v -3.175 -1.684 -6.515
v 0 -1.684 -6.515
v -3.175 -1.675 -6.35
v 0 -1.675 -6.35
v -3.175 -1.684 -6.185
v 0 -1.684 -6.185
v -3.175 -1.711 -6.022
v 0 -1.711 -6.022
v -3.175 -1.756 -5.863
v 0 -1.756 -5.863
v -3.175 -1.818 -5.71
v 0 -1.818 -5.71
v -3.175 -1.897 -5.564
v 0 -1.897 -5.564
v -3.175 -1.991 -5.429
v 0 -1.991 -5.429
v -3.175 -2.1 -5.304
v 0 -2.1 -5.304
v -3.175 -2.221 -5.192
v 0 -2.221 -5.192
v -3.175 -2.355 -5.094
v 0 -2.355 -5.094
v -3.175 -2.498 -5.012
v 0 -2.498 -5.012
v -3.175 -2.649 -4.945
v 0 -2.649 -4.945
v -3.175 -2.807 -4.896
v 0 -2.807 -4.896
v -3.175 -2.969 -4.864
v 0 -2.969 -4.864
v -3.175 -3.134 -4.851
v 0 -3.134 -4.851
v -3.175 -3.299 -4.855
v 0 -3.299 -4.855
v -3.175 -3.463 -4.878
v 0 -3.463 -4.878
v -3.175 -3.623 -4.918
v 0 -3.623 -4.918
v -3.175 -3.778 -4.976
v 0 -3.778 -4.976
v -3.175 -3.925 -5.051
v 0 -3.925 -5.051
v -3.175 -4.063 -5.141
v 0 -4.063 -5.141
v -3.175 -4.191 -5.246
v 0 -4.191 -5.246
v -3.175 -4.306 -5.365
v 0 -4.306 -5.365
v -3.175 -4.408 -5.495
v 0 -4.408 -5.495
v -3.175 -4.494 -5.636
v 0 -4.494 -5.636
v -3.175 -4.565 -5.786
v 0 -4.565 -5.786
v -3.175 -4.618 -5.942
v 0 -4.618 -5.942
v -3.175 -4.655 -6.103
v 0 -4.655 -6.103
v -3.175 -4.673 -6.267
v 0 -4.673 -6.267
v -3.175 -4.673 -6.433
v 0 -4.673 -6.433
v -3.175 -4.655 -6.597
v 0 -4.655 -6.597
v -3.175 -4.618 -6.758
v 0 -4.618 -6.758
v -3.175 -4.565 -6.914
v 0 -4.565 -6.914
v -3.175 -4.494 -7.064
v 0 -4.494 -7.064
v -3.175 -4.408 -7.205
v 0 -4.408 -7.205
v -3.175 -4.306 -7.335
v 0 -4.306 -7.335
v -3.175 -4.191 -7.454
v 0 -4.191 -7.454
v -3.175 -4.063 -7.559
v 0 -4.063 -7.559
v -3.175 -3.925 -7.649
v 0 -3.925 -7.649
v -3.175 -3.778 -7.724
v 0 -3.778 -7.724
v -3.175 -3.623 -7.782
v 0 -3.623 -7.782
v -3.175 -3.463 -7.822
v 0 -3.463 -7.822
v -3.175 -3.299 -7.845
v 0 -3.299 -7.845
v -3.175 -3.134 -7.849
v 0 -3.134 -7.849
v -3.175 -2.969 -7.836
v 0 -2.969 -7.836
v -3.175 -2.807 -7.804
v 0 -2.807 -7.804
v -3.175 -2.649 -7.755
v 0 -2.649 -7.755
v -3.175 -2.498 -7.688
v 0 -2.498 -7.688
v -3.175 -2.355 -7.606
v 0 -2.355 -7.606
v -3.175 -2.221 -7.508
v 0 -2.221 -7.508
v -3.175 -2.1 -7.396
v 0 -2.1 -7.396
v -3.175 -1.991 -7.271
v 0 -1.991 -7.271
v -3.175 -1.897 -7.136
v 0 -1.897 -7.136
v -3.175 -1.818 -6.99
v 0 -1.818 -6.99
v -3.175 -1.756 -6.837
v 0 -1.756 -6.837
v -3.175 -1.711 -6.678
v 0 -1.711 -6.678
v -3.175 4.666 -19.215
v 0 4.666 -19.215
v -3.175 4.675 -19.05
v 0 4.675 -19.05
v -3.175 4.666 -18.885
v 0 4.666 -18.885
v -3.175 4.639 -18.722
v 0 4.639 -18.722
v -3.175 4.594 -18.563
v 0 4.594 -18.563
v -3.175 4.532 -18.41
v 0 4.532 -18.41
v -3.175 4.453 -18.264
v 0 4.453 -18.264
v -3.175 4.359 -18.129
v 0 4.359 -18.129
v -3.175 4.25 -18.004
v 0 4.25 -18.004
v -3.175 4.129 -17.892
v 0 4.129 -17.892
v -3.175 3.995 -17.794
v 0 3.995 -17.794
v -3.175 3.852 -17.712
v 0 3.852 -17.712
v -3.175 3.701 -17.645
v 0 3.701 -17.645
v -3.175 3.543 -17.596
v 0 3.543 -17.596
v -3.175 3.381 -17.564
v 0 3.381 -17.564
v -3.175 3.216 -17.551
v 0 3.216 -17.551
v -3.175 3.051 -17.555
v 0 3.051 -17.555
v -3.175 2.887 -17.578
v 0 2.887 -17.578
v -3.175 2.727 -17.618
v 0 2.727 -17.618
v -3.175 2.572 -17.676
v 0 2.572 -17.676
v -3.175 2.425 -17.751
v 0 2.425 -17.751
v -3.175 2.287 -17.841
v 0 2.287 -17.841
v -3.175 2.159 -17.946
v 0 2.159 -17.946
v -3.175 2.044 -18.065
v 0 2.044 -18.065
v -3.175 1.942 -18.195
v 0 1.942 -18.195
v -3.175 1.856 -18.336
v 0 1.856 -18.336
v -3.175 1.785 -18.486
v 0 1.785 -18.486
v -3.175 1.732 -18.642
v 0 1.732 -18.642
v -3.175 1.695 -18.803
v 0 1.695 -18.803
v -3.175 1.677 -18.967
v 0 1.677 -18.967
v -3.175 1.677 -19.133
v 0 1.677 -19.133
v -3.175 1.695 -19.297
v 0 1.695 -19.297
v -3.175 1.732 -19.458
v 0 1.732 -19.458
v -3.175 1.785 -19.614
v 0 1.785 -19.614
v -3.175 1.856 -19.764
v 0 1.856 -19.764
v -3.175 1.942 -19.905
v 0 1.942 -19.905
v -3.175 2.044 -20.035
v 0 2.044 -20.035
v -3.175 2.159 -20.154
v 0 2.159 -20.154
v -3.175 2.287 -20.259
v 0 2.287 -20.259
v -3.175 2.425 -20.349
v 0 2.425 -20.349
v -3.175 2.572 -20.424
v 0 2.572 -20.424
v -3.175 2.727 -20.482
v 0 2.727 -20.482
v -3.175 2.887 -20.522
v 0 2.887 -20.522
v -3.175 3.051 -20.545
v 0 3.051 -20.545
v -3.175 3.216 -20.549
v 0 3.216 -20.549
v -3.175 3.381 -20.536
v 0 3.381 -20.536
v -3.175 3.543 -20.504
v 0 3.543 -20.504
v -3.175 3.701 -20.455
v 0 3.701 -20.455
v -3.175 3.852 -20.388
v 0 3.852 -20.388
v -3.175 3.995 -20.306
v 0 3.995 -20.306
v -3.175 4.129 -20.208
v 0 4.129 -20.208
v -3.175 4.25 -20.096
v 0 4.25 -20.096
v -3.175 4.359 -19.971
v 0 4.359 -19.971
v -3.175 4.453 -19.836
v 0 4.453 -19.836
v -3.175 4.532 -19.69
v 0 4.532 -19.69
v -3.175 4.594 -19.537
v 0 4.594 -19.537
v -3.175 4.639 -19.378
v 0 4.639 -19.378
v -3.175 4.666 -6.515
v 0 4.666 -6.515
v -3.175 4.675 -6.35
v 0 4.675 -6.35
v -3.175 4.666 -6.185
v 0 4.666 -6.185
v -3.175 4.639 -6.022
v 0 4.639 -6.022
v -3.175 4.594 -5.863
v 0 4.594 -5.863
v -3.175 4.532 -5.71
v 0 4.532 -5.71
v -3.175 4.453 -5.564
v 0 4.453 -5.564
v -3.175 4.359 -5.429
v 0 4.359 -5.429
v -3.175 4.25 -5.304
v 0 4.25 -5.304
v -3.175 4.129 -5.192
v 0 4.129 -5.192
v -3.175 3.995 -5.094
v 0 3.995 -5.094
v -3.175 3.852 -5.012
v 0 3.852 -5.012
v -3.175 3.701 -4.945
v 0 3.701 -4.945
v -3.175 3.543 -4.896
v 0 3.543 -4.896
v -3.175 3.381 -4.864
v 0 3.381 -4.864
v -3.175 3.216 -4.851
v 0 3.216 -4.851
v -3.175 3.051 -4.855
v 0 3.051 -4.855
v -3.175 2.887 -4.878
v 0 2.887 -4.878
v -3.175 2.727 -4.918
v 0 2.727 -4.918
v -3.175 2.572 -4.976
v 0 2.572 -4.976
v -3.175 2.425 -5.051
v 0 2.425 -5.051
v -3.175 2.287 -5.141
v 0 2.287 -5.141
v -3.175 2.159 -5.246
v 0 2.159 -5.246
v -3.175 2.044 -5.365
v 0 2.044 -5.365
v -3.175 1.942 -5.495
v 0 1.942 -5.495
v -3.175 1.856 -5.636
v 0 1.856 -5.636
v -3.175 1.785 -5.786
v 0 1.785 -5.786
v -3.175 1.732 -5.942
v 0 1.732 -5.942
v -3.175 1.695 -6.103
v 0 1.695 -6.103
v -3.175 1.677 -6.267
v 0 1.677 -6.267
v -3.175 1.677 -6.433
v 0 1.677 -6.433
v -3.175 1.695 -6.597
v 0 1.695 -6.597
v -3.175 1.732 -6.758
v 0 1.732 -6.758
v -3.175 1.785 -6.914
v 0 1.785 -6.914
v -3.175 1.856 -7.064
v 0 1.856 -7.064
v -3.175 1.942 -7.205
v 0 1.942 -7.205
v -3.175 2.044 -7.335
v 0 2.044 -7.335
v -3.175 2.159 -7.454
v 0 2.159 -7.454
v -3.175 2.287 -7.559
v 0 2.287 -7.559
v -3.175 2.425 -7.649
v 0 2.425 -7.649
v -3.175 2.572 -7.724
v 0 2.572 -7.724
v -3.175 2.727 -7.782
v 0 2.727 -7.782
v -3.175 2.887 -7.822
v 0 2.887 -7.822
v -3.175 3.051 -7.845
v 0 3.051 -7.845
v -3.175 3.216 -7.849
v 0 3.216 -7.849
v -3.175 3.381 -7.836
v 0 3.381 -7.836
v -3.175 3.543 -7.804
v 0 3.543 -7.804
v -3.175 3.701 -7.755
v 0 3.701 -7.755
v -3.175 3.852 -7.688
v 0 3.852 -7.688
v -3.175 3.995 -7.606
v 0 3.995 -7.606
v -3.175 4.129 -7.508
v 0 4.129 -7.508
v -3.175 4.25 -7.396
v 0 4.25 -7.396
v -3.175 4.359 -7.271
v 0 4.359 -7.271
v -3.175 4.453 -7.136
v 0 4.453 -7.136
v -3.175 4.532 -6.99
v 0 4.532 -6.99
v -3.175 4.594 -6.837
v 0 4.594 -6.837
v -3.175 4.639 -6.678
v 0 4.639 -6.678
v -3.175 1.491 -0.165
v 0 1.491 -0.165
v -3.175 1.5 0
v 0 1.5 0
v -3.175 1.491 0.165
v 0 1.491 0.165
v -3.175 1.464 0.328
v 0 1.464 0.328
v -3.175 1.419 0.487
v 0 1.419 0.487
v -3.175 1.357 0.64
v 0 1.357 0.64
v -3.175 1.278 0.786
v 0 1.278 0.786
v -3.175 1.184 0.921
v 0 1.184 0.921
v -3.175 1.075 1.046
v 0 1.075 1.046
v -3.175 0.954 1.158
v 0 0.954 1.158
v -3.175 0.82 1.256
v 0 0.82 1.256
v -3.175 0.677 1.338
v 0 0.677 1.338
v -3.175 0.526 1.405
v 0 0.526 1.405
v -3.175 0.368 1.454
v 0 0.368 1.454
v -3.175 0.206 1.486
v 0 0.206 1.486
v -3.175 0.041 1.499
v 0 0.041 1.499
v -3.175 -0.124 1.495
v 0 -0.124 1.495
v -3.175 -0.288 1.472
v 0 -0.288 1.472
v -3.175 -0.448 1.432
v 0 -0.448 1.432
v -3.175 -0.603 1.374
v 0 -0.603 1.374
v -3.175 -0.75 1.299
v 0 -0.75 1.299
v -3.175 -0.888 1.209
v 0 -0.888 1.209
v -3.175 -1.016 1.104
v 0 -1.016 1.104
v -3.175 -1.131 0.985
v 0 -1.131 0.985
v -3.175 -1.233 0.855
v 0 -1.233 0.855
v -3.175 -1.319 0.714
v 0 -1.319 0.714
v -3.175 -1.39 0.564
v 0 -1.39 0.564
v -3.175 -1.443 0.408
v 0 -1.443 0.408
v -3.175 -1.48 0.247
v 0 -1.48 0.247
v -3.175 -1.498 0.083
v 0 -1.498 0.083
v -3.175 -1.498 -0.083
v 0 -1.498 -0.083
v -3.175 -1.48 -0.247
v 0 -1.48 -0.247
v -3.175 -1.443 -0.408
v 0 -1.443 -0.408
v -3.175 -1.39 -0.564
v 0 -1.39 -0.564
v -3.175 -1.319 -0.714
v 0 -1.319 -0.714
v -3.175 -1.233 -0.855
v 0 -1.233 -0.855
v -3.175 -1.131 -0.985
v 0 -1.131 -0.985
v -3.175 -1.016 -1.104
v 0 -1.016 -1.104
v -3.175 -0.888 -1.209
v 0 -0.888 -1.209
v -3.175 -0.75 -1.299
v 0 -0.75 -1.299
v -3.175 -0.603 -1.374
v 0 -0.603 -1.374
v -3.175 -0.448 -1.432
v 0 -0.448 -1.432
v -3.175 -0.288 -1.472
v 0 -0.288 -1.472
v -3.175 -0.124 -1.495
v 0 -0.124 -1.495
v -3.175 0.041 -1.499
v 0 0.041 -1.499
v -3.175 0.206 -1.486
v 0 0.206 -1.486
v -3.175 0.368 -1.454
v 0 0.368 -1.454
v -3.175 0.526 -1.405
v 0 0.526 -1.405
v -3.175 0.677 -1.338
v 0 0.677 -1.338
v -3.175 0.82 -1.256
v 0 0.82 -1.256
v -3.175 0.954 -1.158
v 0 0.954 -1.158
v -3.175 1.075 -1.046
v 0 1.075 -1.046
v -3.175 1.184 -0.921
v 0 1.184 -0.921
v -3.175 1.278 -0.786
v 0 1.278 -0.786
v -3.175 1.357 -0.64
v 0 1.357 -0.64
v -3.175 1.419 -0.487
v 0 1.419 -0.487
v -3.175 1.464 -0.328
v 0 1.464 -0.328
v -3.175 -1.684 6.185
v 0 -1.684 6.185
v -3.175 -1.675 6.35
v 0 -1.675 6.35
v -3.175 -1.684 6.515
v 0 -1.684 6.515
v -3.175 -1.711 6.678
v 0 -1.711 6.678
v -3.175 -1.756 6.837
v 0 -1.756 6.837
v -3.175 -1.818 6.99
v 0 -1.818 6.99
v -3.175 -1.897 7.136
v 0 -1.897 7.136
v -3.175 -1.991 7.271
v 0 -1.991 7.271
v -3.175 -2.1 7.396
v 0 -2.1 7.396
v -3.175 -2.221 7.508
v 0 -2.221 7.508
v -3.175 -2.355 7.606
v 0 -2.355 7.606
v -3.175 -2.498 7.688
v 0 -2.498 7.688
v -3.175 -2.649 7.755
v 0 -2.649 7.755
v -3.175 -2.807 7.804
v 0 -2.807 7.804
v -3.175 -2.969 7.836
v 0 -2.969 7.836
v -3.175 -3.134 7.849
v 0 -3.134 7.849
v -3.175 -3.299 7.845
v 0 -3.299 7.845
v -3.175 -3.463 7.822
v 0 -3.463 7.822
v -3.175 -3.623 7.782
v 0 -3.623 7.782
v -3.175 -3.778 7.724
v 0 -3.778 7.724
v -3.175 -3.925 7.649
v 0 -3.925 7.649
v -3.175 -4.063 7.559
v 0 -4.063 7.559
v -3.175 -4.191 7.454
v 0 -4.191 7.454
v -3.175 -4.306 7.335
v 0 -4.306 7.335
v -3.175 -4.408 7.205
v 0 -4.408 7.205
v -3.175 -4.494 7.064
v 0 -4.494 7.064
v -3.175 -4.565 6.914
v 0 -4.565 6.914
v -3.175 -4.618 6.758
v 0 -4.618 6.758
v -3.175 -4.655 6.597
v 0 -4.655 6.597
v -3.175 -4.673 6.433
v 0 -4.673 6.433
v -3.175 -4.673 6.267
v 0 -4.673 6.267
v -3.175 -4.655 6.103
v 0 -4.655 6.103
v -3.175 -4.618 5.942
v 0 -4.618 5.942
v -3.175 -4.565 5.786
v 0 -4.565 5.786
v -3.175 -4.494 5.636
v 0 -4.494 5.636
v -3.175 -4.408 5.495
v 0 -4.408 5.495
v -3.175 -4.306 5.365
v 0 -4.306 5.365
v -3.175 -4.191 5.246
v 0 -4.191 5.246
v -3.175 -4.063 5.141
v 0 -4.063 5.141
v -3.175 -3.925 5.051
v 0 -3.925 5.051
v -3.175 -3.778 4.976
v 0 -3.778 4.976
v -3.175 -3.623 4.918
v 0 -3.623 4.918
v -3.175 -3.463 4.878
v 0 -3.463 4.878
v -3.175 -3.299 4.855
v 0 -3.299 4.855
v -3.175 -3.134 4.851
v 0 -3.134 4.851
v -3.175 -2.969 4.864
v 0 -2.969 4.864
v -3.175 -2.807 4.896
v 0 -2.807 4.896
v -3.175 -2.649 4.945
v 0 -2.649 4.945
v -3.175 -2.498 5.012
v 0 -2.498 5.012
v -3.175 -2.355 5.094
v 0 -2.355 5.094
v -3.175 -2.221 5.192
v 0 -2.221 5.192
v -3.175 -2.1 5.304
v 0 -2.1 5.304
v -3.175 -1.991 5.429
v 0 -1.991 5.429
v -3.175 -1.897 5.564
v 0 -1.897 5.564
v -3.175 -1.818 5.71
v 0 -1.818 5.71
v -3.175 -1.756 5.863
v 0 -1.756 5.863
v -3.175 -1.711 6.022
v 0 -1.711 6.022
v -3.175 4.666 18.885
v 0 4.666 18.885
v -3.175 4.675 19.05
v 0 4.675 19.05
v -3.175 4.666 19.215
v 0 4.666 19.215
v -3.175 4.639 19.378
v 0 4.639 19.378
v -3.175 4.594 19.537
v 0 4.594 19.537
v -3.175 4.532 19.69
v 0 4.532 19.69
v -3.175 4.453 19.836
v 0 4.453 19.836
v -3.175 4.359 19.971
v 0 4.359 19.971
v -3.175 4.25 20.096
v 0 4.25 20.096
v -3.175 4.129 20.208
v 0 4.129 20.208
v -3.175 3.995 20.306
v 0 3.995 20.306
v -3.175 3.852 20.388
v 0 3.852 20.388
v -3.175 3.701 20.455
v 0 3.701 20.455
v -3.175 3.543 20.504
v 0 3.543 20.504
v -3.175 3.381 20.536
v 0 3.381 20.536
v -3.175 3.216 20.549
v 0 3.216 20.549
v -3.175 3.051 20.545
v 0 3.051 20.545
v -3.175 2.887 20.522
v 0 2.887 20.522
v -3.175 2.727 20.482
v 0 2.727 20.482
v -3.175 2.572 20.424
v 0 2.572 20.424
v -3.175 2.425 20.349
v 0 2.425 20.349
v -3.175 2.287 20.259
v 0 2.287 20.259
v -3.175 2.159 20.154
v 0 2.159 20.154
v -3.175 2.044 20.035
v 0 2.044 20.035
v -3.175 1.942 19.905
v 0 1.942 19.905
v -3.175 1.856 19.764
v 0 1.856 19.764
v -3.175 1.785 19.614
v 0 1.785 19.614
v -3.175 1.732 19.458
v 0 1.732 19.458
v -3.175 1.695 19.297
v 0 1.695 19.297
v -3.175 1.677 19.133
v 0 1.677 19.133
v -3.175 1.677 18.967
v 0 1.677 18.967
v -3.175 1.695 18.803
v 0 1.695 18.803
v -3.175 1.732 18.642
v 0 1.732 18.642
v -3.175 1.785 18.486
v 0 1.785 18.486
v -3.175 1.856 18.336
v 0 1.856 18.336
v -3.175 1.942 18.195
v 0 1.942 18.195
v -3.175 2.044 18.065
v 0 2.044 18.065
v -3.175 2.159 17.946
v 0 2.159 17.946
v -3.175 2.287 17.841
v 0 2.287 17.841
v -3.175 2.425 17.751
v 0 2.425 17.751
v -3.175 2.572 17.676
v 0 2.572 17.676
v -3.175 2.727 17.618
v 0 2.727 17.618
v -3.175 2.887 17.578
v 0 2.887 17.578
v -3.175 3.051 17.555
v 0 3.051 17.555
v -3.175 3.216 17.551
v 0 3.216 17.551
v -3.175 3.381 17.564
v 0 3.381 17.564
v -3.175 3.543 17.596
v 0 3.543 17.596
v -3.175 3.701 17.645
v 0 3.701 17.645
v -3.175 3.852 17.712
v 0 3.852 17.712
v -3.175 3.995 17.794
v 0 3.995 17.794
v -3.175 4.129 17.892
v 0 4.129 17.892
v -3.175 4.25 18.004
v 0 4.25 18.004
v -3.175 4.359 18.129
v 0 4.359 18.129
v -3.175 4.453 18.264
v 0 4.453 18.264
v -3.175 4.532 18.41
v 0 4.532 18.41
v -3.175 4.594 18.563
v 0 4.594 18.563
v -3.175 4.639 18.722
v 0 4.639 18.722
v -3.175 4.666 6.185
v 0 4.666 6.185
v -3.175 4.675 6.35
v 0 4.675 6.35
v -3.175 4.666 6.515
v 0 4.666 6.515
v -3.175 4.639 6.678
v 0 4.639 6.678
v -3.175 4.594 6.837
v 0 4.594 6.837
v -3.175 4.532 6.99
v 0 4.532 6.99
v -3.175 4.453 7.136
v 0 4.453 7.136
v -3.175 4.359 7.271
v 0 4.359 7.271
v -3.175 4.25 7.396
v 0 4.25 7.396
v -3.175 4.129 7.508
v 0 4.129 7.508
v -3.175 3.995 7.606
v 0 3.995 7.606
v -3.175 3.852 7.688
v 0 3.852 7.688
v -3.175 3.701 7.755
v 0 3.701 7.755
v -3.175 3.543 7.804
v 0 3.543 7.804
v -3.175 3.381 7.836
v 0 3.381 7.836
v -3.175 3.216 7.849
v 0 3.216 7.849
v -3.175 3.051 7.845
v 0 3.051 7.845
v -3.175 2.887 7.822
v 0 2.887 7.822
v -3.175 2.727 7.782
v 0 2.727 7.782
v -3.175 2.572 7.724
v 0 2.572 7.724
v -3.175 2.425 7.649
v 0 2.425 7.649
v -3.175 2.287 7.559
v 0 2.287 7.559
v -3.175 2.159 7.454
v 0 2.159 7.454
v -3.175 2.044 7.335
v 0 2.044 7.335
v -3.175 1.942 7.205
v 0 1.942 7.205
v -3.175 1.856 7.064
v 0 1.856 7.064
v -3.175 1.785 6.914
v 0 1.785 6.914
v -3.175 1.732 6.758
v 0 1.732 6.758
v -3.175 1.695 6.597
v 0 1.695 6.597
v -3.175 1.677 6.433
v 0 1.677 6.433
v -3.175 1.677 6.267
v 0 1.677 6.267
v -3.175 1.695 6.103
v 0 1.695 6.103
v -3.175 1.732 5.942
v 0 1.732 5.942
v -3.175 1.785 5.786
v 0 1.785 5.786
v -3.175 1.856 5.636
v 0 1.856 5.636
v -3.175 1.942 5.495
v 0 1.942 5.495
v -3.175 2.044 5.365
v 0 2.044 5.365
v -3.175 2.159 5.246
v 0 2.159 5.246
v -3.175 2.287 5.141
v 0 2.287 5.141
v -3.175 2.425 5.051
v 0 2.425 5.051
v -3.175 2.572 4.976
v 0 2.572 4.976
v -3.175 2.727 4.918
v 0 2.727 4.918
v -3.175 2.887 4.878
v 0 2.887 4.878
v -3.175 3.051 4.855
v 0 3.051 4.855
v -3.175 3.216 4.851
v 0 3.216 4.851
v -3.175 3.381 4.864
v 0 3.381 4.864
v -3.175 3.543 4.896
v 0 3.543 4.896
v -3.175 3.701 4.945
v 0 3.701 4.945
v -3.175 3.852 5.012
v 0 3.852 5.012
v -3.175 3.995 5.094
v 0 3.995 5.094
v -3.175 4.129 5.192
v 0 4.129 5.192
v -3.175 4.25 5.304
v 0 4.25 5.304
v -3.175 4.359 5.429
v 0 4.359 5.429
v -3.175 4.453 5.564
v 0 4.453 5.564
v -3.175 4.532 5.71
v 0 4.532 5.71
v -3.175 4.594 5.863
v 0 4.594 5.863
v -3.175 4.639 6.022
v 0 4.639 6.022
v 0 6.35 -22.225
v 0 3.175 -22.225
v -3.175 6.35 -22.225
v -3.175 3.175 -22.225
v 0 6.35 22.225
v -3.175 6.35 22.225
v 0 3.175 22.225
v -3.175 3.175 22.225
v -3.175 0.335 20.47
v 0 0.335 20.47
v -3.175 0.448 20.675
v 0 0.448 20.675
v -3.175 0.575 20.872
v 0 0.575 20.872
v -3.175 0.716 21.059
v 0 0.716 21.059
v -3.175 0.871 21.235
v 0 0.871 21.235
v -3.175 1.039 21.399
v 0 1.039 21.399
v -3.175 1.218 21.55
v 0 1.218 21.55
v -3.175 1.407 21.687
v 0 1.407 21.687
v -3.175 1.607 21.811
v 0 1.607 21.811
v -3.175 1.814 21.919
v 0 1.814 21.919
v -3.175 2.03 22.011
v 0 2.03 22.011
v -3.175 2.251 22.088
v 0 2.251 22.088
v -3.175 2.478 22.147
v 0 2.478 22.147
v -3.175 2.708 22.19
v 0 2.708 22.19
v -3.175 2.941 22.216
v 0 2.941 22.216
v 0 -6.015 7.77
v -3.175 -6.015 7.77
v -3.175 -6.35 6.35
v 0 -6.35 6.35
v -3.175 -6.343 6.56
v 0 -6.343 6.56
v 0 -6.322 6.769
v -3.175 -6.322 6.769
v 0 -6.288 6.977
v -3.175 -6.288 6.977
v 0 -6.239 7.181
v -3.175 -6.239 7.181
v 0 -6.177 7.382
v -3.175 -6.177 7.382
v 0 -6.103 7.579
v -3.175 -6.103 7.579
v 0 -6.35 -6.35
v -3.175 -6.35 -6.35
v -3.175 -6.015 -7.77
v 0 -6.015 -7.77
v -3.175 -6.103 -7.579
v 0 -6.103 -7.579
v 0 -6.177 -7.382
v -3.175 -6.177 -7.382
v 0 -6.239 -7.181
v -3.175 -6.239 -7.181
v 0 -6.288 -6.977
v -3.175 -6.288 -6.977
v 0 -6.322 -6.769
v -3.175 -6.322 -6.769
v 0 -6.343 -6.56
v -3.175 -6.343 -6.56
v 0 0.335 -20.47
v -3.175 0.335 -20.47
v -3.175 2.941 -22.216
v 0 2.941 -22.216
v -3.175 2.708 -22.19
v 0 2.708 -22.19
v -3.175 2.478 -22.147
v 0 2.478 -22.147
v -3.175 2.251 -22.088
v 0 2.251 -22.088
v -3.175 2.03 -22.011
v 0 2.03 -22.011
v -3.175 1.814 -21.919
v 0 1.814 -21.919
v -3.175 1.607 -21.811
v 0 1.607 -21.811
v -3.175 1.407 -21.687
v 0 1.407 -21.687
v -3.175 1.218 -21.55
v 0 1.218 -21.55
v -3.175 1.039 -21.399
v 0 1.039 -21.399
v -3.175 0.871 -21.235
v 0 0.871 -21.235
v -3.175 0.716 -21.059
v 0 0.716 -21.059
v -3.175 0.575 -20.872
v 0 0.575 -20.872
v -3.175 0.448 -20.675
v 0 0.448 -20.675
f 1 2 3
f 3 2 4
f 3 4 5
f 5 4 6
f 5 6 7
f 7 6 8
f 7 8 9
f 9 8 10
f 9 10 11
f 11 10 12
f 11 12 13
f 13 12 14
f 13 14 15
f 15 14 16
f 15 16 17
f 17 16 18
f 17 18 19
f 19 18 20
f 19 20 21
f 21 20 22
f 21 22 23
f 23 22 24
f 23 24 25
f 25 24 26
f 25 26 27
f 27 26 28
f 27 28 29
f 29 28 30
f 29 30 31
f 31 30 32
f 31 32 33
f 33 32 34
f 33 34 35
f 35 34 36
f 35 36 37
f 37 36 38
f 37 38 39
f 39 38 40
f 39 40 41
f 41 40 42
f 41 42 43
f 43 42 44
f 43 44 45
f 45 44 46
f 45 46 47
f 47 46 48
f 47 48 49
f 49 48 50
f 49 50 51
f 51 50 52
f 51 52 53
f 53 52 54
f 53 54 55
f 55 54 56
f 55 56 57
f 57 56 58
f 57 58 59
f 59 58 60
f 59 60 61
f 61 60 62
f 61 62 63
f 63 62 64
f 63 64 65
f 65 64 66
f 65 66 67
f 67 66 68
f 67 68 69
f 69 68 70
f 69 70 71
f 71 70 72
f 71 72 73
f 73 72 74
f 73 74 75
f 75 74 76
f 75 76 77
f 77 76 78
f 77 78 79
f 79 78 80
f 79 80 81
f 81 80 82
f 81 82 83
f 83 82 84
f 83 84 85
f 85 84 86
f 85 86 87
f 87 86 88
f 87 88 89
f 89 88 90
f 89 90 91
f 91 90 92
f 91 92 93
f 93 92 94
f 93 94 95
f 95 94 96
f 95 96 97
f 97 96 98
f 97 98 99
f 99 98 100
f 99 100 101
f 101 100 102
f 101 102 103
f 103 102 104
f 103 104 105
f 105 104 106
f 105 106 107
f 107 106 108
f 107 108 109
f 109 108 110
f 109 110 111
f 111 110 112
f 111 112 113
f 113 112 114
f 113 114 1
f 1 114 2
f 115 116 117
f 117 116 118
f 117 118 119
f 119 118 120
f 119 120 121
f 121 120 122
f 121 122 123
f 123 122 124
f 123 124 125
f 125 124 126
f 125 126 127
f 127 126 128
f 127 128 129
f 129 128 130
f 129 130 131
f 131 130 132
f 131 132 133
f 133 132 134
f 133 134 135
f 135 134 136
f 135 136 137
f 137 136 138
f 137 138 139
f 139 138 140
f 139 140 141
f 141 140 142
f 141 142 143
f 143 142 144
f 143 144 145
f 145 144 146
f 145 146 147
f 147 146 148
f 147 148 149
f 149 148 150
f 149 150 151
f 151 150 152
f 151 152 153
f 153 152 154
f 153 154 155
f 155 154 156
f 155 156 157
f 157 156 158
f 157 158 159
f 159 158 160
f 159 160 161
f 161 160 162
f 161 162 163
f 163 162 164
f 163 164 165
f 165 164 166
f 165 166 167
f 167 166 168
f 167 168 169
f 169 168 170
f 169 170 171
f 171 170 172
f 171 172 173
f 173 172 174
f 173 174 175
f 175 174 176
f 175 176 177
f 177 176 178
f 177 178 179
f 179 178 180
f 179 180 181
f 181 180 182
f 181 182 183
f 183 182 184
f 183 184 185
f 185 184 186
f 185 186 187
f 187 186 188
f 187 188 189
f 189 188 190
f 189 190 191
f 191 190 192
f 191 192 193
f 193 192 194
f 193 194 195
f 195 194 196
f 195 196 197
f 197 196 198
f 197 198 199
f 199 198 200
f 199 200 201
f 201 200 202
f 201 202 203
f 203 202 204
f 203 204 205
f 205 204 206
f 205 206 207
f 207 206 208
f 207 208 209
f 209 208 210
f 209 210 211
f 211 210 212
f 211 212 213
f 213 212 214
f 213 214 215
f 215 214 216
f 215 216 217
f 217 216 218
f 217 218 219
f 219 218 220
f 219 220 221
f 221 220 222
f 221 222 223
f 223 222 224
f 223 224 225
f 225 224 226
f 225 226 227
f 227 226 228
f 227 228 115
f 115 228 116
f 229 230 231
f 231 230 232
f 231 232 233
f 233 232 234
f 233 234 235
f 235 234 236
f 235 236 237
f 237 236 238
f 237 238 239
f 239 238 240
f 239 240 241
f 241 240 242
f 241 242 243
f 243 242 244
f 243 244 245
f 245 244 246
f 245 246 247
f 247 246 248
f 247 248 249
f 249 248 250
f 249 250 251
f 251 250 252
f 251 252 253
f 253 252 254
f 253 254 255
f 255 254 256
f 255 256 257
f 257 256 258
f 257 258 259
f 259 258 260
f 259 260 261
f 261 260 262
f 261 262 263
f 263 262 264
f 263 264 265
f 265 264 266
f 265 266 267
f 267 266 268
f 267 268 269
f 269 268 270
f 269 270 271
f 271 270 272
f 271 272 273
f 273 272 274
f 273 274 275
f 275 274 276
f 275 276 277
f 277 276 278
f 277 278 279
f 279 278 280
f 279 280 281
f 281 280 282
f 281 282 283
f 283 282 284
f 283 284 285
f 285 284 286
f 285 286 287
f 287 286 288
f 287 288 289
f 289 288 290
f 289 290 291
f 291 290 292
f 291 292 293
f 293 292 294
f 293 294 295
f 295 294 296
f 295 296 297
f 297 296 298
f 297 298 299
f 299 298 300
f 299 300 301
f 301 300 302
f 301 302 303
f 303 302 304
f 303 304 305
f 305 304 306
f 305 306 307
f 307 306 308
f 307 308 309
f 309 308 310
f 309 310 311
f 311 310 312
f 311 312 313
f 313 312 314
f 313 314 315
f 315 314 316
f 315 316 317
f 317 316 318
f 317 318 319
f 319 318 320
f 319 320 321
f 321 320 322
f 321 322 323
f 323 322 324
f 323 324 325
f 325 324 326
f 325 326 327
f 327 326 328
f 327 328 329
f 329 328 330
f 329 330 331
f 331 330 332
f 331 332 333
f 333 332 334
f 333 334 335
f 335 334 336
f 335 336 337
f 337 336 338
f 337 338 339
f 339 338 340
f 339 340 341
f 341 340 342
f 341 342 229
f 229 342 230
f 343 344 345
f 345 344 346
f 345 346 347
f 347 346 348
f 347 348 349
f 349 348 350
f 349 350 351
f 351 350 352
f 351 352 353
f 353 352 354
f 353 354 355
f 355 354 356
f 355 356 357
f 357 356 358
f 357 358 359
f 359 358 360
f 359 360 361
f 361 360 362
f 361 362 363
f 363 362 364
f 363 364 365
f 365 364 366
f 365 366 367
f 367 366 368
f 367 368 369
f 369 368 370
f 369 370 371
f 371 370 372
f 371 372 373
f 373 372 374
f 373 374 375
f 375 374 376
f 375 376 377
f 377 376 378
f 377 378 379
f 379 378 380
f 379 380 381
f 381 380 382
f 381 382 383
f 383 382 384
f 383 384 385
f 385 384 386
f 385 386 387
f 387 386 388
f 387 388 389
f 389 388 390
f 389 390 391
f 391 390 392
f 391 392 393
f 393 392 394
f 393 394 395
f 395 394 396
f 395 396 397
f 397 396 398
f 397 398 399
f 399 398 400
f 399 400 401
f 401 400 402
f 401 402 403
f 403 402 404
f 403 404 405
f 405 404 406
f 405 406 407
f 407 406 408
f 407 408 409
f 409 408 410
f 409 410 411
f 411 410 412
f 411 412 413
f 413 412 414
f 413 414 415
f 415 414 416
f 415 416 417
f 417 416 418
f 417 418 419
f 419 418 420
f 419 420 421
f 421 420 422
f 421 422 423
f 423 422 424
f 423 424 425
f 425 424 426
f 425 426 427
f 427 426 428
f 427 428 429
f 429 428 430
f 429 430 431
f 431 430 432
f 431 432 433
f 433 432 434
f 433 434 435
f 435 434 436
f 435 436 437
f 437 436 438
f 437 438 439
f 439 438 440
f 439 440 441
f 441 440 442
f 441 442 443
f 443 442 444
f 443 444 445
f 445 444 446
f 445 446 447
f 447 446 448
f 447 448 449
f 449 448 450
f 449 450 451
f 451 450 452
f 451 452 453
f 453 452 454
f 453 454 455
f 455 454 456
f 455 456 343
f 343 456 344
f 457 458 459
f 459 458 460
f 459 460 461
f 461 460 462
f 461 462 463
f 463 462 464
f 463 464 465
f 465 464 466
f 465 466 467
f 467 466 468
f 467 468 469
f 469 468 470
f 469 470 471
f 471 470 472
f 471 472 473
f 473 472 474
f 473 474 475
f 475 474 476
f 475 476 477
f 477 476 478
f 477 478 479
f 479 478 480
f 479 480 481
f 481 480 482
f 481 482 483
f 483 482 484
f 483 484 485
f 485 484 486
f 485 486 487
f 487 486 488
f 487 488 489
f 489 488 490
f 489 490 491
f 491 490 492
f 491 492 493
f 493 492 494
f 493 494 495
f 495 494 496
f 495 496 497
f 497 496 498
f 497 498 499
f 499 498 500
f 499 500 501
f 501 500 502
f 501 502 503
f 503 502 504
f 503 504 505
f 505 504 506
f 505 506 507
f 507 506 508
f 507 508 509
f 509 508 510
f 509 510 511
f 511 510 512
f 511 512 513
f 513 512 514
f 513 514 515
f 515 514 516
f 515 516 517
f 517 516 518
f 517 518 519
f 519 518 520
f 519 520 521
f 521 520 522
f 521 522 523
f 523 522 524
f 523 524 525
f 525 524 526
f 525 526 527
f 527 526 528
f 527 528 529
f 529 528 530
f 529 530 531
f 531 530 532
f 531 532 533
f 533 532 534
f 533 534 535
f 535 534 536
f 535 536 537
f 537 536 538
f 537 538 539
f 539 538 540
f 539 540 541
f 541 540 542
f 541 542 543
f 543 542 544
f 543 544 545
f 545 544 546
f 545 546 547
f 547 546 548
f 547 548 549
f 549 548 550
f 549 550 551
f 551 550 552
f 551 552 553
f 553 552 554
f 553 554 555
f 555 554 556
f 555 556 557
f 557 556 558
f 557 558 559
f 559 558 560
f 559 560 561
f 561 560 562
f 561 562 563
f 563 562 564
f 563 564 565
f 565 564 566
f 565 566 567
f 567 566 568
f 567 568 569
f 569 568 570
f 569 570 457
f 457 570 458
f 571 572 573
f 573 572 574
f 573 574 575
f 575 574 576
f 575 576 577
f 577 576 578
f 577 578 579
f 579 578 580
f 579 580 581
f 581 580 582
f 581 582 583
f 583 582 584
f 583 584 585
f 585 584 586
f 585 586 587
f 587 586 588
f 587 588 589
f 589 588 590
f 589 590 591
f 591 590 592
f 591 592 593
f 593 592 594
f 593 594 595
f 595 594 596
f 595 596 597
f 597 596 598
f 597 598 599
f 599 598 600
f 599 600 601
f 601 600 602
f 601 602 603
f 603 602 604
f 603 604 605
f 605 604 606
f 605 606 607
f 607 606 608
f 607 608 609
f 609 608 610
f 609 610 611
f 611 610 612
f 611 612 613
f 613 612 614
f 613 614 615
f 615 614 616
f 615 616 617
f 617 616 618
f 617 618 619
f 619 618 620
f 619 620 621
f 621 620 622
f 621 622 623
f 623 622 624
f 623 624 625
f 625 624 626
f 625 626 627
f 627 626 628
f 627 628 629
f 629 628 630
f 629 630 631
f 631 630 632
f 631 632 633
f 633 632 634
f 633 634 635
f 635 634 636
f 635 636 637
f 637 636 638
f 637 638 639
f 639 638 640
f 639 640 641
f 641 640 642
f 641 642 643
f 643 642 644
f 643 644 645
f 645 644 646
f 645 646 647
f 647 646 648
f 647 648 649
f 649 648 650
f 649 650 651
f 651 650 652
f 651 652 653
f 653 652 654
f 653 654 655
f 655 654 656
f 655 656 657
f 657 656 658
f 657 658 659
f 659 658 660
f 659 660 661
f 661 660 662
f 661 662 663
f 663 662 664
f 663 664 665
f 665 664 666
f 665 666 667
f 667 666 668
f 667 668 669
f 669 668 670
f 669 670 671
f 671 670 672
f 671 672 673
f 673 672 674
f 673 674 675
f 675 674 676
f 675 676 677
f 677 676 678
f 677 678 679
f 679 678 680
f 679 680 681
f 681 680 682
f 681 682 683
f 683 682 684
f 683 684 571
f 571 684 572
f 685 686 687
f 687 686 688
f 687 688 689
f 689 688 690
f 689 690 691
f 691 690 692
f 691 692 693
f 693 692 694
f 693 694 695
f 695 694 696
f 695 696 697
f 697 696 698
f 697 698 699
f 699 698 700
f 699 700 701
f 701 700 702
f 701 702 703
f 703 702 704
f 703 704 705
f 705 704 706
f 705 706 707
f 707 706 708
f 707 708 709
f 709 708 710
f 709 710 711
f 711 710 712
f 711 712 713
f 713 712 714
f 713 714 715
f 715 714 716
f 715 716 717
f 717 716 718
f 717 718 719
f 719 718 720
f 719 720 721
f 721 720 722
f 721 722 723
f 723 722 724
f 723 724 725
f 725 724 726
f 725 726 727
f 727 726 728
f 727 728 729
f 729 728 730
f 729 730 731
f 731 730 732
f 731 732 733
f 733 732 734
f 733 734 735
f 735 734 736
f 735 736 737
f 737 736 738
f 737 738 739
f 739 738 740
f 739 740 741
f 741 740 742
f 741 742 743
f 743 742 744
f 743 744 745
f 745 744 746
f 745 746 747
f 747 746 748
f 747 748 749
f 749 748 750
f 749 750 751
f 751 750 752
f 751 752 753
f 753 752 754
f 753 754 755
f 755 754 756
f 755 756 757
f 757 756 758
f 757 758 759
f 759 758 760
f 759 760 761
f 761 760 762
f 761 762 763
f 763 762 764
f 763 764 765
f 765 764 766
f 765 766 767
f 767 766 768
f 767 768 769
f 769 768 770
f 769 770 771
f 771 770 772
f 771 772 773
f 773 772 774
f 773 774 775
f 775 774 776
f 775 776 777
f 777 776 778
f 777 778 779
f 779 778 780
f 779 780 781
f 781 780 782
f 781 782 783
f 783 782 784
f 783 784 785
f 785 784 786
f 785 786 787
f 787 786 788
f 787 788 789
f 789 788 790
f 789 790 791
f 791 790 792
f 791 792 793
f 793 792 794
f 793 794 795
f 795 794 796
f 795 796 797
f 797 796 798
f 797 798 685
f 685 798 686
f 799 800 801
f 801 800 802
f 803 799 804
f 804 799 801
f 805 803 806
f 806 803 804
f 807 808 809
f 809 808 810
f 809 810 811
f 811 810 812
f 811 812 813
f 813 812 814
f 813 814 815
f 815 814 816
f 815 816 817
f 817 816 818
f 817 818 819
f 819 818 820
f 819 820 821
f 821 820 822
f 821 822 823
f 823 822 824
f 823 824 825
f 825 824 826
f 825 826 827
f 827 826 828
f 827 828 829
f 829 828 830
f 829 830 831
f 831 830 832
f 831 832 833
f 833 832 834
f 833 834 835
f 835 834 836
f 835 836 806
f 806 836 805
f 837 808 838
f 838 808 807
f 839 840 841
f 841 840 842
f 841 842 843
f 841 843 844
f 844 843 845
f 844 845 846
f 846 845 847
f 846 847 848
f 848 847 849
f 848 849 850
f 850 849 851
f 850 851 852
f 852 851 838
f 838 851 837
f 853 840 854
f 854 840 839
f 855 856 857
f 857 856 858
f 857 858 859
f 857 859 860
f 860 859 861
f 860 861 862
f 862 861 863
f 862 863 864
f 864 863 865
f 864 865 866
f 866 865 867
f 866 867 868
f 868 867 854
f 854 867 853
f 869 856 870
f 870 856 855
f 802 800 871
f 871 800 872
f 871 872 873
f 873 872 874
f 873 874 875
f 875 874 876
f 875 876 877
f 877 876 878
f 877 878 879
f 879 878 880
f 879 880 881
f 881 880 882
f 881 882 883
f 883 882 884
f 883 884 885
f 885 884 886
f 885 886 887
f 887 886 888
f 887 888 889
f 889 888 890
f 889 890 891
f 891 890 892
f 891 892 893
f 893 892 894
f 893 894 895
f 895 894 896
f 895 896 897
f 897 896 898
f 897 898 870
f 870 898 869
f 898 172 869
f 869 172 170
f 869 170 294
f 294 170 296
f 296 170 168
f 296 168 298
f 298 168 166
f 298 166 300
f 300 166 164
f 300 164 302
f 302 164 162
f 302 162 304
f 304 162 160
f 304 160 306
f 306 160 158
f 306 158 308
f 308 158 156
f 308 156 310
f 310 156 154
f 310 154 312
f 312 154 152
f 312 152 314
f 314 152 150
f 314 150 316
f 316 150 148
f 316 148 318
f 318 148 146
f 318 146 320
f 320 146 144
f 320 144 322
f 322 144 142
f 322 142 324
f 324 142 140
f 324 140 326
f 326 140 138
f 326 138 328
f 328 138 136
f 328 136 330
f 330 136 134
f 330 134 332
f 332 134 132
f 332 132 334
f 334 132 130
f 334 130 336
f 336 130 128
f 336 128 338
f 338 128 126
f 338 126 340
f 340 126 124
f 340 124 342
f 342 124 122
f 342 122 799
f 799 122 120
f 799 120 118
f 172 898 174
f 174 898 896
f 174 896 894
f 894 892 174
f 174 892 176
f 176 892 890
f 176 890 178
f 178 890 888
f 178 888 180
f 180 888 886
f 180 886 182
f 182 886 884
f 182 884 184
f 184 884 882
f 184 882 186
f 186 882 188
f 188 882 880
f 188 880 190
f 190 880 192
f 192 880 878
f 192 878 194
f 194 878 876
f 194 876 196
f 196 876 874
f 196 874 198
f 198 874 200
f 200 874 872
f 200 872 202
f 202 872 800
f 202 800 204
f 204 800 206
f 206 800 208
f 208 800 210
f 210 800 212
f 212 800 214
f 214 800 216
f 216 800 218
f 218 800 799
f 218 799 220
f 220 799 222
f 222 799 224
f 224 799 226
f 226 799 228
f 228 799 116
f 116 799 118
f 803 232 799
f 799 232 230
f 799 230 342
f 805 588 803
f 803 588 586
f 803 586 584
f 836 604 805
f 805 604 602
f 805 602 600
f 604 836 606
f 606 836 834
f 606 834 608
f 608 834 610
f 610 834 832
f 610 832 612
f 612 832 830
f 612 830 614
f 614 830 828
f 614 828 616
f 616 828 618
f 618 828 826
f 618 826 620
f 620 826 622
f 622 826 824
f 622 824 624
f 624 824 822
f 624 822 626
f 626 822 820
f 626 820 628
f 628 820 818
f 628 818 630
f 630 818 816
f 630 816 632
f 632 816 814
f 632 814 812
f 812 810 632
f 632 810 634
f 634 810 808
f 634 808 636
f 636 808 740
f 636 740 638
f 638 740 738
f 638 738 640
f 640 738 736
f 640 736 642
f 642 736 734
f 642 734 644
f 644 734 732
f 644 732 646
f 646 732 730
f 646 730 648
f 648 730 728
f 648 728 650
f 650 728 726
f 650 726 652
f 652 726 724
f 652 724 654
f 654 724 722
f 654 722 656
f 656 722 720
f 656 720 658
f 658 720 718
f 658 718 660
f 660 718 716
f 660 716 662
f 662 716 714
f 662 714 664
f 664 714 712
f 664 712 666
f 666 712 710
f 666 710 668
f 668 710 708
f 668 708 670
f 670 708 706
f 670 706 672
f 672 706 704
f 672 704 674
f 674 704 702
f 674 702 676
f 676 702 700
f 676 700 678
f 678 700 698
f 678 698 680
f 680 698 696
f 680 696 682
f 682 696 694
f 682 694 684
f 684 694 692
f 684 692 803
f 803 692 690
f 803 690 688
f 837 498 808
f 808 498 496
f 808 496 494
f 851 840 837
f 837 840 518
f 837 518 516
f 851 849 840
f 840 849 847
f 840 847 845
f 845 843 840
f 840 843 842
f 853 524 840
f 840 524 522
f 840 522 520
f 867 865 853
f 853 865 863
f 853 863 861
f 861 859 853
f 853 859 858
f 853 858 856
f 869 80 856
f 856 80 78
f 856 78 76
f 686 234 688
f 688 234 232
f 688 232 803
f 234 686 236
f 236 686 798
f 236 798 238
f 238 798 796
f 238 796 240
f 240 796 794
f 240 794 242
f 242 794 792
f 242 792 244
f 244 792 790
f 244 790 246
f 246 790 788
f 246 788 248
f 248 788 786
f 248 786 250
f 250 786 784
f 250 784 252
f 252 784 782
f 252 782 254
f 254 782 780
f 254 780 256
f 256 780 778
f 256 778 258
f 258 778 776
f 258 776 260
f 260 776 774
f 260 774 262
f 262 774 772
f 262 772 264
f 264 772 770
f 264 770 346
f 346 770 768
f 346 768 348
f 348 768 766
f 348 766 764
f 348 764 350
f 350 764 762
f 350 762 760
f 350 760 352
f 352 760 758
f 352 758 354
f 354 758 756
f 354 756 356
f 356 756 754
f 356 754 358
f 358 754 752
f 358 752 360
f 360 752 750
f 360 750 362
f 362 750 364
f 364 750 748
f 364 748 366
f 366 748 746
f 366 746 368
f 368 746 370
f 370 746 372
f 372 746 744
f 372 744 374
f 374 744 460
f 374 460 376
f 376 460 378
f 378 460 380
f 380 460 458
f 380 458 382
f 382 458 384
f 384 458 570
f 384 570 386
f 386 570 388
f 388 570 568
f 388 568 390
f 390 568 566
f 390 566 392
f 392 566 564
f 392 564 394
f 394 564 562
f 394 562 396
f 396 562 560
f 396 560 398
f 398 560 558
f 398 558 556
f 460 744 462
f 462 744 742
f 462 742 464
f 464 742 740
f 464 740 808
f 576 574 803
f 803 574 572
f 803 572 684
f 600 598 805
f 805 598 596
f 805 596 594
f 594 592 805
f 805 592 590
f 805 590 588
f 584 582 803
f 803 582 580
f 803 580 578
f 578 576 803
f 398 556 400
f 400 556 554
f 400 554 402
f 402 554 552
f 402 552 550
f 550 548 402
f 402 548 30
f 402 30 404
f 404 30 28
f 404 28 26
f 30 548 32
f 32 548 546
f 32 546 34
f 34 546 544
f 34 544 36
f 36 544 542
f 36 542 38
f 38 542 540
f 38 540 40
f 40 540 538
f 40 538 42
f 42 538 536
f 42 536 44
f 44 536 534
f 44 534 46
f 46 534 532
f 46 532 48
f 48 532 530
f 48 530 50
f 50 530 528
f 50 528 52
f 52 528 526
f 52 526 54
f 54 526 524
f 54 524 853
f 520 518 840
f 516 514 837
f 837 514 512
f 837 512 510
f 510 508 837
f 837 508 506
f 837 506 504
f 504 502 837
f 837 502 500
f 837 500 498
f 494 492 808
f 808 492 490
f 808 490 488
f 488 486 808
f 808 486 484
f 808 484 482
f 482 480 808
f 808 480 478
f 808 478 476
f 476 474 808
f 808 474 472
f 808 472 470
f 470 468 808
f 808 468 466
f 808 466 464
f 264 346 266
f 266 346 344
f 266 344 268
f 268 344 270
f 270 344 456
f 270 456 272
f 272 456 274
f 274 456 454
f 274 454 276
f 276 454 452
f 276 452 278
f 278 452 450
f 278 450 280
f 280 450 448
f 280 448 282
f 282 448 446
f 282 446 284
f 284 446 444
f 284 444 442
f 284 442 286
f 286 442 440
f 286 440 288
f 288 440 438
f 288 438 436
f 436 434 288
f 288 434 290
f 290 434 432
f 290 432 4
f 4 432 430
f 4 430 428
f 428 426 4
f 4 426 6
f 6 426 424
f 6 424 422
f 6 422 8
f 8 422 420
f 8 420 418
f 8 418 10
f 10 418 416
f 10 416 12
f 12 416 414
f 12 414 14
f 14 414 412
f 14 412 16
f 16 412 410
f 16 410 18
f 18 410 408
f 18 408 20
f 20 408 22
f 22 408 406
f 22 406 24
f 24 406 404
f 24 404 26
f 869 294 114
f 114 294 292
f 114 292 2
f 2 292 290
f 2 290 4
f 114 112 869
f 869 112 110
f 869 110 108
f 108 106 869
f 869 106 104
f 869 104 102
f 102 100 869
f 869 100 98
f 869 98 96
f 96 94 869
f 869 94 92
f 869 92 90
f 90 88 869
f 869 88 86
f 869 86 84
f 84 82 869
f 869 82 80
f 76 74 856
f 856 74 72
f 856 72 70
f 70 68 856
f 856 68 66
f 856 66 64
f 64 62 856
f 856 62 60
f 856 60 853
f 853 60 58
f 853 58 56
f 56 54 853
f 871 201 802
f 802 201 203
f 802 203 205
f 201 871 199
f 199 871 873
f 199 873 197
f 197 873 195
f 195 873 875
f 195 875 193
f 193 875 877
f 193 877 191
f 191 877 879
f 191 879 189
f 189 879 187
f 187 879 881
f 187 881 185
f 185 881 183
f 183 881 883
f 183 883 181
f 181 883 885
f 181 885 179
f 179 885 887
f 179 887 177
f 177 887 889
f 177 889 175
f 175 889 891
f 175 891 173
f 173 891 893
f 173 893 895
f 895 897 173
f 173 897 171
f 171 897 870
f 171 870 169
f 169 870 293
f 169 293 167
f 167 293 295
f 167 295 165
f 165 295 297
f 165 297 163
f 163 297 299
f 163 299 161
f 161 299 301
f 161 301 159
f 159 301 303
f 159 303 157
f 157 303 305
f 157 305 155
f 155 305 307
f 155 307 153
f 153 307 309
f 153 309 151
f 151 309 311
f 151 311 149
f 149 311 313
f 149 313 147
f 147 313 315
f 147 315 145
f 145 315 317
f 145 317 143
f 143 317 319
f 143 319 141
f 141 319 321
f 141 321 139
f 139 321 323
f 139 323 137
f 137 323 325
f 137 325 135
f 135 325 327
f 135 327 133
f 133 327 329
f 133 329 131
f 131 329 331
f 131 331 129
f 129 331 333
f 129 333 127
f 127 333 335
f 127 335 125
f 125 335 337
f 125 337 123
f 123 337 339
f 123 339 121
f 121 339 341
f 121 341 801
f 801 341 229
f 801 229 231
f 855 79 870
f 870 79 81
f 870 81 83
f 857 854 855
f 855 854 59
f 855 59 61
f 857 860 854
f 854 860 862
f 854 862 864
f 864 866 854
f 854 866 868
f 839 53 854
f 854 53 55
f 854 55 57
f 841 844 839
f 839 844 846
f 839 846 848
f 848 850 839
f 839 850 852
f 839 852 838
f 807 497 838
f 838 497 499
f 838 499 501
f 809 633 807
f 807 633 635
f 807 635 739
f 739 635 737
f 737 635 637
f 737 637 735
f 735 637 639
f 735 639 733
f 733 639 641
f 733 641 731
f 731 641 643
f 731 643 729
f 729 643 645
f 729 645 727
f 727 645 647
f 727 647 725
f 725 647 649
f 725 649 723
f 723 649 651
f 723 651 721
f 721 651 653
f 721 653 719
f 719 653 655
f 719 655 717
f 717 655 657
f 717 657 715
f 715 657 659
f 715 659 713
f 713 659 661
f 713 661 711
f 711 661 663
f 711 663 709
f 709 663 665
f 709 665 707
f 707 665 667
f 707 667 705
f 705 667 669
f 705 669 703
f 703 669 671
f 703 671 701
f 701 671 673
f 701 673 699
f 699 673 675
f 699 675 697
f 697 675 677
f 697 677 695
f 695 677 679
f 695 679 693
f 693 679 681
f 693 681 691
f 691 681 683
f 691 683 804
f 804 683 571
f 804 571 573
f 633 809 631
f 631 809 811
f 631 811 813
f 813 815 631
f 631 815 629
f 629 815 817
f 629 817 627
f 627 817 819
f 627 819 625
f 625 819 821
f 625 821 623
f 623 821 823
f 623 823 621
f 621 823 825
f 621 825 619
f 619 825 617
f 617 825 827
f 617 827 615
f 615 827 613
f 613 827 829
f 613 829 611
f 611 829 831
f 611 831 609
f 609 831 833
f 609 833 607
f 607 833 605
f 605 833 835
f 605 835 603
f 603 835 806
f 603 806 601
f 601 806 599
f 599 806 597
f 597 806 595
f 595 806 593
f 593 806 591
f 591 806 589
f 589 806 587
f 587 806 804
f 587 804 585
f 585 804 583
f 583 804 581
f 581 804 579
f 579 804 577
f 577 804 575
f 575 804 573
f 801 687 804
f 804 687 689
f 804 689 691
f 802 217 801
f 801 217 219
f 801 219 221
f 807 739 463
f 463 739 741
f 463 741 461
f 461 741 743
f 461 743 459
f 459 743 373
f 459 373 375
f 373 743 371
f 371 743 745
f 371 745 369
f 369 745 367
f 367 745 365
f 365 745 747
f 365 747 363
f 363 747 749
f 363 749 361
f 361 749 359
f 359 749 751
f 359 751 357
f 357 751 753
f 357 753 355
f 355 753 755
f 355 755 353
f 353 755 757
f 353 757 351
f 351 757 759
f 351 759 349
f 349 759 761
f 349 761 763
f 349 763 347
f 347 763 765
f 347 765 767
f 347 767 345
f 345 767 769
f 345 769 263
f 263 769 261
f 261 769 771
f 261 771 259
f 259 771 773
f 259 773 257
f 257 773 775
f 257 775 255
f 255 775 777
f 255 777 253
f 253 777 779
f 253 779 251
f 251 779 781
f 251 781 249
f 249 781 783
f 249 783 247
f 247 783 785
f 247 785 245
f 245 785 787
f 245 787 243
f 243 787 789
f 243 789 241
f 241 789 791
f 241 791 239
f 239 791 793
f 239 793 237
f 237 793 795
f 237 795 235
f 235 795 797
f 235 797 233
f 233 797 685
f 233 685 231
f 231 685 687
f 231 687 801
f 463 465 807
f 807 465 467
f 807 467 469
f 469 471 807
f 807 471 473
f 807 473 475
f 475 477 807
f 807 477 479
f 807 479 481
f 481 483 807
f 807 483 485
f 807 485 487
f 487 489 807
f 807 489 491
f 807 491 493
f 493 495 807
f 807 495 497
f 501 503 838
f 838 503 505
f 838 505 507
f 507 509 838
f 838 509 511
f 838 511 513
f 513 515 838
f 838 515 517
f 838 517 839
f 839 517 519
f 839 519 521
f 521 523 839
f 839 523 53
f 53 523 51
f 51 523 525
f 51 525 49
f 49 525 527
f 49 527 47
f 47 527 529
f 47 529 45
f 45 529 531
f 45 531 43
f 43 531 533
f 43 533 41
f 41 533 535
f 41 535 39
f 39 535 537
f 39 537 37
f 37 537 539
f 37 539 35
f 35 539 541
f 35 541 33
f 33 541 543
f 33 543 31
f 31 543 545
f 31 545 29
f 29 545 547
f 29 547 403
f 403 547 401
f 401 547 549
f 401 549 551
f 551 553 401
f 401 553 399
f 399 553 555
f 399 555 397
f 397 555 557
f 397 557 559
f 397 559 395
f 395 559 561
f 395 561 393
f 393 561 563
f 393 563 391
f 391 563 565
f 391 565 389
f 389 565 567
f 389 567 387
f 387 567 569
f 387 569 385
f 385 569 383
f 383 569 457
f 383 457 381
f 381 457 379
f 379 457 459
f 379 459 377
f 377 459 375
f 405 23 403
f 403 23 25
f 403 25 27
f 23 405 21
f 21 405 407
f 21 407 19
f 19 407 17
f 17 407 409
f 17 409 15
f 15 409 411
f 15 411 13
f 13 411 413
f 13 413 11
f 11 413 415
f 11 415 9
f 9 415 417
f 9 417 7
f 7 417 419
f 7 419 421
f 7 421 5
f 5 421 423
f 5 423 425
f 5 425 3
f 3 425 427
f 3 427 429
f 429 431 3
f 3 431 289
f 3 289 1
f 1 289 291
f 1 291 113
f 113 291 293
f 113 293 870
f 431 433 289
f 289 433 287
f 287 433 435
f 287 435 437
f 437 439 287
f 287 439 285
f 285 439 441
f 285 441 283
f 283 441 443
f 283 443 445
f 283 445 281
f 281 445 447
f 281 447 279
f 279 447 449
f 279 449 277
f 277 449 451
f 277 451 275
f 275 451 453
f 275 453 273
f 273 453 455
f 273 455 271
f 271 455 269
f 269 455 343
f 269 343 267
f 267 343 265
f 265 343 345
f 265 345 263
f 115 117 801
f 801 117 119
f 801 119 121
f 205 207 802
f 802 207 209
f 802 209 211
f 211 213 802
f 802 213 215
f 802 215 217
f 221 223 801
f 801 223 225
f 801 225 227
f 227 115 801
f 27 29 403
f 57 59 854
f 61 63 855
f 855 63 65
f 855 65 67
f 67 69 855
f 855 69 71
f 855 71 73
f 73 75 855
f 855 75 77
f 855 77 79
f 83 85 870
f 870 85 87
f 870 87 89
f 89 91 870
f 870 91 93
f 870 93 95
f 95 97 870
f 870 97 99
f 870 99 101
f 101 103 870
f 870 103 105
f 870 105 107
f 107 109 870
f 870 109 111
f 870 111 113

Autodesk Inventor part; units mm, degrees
ref_plane "YZ Plane" through (0, 0, 0) normal (1, 0, 0) x (0, 1, 0)
ref_plane "XZ Plane" through (0, 0, 0) normal (0, 1, 0) x (-1, 0, 0)
ref_plane "XY Plane" through (0, 0, 0) normal (0, 0, 1) x (1, 0, 0)
sketch "Sketch1" plane through (0, 0, 0) normal (1, 0, 0) x (0, 1, 0)
  line L0 (3.175, 6.35) -> (-3.175, 6.35) construction
  line L1 (-3.175, 6.35) -> (-3.175, -6.35) construction
  line L2 (-3.175, -6.35) -> (3.175, -6.35) construction
  line L3 (3.175, -6.35) -> (3.175, 6.35) construction
  line L4 (3.175, 6.35) -> (-3.175, -6.35) construction
  line L5 (-3.175, 6.35) -> (3.175, -6.35) construction
  circle A0 centre (0, 0) radius 1.5
  circle A1 centre (3.175, 6.35) radius 1.5
  circle A2 centre (3.175, -6.35) radius 1.5
  circle A3 centre (-3.175, 6.35) radius 1.5
  circle A4 centre (-3.175, -6.35) radius 1.5
  line L6 (6.35, 22.225) -> (-6.35, 22.225)
  line L7 (-6.35, 22.225) -> (-6.35, -22.225)
  line L8 (-6.35, -22.225) -> (6.35, -22.225)
  line L9 (6.35, -22.225) -> (6.35, 22.225)
  line L10 (6.35, 22.225) -> (-6.35, -22.225) construction
  line L11 (-6.35, 22.225) -> (6.35, -22.225) construction
  line L12 (-6.35, 0) -> (6.35, 0) construction
  line L13 (-6.35, -3.175) -> (6.35, -3.175)
  line L14 (6.35, 3.175) -> (-6.35, 3.175)
  arc A5 (-6.35, 3.175) -> (-6.35, -3.175) centre (-6.35, 0) ccw
  arc A6 (6.35, -3.175) -> (6.35, 3.175) centre (6.35, 0) ccw
  circle A7 centre (3.175, 19.05) radius 1.5
  arc A8 (3.175, 22.225) -> (0.3352, 20.4699) centre (3.175, 19.05) ccw
  arc A9 (-6.0148, 7.7699) -> (-6.35, 6.35) centre (-3.175, 6.35) ccw
  line L15 (0.3352, 20.4699) -> (-6.0148, 7.7699)
  circle A10 centre (3.175, -19.05) radius 1.5
  arc A11 (0.3352, -20.4699) -> (3.175, -22.225) centre (3.175, -19.05) ccw
  arc A12 (-6.35, -6.35) -> (-6.0148, -7.7699) centre (-3.175, -6.35) ccw
  line L16 (0.3352, -20.4699) -> (-6.0148, -7.7699)
  point P0 (3.175, -22.225)
  point P1 (-6.35, -6.35)
  dimension "d0" = 6.35
  dimension "d1" = 12.7
  dimension "d2" = 3
  dimension "d3" = 3
  dimension "d6" = 12.7
  dimension "d9" = 6.35
  dimension "d12" = 12.7
  dimension "d13" = 44.45
  dimension "d14" = 6.35
  dimension "d20" = 3
  dimension "d21" = 12.7
extrude "Extrusion2" add sketch "Sketch1" against normal blind 3.175 contours L9 L14 L7 A9 L15 A8 L6 | L9 L13 L7 L14 | L9 L8 A11 L16 A12 L7 L13
equation "\"d6\" = d1"
equation "\"d9\" = d0"
properties part number "Pin Cap" material "Aluminum 6061"
